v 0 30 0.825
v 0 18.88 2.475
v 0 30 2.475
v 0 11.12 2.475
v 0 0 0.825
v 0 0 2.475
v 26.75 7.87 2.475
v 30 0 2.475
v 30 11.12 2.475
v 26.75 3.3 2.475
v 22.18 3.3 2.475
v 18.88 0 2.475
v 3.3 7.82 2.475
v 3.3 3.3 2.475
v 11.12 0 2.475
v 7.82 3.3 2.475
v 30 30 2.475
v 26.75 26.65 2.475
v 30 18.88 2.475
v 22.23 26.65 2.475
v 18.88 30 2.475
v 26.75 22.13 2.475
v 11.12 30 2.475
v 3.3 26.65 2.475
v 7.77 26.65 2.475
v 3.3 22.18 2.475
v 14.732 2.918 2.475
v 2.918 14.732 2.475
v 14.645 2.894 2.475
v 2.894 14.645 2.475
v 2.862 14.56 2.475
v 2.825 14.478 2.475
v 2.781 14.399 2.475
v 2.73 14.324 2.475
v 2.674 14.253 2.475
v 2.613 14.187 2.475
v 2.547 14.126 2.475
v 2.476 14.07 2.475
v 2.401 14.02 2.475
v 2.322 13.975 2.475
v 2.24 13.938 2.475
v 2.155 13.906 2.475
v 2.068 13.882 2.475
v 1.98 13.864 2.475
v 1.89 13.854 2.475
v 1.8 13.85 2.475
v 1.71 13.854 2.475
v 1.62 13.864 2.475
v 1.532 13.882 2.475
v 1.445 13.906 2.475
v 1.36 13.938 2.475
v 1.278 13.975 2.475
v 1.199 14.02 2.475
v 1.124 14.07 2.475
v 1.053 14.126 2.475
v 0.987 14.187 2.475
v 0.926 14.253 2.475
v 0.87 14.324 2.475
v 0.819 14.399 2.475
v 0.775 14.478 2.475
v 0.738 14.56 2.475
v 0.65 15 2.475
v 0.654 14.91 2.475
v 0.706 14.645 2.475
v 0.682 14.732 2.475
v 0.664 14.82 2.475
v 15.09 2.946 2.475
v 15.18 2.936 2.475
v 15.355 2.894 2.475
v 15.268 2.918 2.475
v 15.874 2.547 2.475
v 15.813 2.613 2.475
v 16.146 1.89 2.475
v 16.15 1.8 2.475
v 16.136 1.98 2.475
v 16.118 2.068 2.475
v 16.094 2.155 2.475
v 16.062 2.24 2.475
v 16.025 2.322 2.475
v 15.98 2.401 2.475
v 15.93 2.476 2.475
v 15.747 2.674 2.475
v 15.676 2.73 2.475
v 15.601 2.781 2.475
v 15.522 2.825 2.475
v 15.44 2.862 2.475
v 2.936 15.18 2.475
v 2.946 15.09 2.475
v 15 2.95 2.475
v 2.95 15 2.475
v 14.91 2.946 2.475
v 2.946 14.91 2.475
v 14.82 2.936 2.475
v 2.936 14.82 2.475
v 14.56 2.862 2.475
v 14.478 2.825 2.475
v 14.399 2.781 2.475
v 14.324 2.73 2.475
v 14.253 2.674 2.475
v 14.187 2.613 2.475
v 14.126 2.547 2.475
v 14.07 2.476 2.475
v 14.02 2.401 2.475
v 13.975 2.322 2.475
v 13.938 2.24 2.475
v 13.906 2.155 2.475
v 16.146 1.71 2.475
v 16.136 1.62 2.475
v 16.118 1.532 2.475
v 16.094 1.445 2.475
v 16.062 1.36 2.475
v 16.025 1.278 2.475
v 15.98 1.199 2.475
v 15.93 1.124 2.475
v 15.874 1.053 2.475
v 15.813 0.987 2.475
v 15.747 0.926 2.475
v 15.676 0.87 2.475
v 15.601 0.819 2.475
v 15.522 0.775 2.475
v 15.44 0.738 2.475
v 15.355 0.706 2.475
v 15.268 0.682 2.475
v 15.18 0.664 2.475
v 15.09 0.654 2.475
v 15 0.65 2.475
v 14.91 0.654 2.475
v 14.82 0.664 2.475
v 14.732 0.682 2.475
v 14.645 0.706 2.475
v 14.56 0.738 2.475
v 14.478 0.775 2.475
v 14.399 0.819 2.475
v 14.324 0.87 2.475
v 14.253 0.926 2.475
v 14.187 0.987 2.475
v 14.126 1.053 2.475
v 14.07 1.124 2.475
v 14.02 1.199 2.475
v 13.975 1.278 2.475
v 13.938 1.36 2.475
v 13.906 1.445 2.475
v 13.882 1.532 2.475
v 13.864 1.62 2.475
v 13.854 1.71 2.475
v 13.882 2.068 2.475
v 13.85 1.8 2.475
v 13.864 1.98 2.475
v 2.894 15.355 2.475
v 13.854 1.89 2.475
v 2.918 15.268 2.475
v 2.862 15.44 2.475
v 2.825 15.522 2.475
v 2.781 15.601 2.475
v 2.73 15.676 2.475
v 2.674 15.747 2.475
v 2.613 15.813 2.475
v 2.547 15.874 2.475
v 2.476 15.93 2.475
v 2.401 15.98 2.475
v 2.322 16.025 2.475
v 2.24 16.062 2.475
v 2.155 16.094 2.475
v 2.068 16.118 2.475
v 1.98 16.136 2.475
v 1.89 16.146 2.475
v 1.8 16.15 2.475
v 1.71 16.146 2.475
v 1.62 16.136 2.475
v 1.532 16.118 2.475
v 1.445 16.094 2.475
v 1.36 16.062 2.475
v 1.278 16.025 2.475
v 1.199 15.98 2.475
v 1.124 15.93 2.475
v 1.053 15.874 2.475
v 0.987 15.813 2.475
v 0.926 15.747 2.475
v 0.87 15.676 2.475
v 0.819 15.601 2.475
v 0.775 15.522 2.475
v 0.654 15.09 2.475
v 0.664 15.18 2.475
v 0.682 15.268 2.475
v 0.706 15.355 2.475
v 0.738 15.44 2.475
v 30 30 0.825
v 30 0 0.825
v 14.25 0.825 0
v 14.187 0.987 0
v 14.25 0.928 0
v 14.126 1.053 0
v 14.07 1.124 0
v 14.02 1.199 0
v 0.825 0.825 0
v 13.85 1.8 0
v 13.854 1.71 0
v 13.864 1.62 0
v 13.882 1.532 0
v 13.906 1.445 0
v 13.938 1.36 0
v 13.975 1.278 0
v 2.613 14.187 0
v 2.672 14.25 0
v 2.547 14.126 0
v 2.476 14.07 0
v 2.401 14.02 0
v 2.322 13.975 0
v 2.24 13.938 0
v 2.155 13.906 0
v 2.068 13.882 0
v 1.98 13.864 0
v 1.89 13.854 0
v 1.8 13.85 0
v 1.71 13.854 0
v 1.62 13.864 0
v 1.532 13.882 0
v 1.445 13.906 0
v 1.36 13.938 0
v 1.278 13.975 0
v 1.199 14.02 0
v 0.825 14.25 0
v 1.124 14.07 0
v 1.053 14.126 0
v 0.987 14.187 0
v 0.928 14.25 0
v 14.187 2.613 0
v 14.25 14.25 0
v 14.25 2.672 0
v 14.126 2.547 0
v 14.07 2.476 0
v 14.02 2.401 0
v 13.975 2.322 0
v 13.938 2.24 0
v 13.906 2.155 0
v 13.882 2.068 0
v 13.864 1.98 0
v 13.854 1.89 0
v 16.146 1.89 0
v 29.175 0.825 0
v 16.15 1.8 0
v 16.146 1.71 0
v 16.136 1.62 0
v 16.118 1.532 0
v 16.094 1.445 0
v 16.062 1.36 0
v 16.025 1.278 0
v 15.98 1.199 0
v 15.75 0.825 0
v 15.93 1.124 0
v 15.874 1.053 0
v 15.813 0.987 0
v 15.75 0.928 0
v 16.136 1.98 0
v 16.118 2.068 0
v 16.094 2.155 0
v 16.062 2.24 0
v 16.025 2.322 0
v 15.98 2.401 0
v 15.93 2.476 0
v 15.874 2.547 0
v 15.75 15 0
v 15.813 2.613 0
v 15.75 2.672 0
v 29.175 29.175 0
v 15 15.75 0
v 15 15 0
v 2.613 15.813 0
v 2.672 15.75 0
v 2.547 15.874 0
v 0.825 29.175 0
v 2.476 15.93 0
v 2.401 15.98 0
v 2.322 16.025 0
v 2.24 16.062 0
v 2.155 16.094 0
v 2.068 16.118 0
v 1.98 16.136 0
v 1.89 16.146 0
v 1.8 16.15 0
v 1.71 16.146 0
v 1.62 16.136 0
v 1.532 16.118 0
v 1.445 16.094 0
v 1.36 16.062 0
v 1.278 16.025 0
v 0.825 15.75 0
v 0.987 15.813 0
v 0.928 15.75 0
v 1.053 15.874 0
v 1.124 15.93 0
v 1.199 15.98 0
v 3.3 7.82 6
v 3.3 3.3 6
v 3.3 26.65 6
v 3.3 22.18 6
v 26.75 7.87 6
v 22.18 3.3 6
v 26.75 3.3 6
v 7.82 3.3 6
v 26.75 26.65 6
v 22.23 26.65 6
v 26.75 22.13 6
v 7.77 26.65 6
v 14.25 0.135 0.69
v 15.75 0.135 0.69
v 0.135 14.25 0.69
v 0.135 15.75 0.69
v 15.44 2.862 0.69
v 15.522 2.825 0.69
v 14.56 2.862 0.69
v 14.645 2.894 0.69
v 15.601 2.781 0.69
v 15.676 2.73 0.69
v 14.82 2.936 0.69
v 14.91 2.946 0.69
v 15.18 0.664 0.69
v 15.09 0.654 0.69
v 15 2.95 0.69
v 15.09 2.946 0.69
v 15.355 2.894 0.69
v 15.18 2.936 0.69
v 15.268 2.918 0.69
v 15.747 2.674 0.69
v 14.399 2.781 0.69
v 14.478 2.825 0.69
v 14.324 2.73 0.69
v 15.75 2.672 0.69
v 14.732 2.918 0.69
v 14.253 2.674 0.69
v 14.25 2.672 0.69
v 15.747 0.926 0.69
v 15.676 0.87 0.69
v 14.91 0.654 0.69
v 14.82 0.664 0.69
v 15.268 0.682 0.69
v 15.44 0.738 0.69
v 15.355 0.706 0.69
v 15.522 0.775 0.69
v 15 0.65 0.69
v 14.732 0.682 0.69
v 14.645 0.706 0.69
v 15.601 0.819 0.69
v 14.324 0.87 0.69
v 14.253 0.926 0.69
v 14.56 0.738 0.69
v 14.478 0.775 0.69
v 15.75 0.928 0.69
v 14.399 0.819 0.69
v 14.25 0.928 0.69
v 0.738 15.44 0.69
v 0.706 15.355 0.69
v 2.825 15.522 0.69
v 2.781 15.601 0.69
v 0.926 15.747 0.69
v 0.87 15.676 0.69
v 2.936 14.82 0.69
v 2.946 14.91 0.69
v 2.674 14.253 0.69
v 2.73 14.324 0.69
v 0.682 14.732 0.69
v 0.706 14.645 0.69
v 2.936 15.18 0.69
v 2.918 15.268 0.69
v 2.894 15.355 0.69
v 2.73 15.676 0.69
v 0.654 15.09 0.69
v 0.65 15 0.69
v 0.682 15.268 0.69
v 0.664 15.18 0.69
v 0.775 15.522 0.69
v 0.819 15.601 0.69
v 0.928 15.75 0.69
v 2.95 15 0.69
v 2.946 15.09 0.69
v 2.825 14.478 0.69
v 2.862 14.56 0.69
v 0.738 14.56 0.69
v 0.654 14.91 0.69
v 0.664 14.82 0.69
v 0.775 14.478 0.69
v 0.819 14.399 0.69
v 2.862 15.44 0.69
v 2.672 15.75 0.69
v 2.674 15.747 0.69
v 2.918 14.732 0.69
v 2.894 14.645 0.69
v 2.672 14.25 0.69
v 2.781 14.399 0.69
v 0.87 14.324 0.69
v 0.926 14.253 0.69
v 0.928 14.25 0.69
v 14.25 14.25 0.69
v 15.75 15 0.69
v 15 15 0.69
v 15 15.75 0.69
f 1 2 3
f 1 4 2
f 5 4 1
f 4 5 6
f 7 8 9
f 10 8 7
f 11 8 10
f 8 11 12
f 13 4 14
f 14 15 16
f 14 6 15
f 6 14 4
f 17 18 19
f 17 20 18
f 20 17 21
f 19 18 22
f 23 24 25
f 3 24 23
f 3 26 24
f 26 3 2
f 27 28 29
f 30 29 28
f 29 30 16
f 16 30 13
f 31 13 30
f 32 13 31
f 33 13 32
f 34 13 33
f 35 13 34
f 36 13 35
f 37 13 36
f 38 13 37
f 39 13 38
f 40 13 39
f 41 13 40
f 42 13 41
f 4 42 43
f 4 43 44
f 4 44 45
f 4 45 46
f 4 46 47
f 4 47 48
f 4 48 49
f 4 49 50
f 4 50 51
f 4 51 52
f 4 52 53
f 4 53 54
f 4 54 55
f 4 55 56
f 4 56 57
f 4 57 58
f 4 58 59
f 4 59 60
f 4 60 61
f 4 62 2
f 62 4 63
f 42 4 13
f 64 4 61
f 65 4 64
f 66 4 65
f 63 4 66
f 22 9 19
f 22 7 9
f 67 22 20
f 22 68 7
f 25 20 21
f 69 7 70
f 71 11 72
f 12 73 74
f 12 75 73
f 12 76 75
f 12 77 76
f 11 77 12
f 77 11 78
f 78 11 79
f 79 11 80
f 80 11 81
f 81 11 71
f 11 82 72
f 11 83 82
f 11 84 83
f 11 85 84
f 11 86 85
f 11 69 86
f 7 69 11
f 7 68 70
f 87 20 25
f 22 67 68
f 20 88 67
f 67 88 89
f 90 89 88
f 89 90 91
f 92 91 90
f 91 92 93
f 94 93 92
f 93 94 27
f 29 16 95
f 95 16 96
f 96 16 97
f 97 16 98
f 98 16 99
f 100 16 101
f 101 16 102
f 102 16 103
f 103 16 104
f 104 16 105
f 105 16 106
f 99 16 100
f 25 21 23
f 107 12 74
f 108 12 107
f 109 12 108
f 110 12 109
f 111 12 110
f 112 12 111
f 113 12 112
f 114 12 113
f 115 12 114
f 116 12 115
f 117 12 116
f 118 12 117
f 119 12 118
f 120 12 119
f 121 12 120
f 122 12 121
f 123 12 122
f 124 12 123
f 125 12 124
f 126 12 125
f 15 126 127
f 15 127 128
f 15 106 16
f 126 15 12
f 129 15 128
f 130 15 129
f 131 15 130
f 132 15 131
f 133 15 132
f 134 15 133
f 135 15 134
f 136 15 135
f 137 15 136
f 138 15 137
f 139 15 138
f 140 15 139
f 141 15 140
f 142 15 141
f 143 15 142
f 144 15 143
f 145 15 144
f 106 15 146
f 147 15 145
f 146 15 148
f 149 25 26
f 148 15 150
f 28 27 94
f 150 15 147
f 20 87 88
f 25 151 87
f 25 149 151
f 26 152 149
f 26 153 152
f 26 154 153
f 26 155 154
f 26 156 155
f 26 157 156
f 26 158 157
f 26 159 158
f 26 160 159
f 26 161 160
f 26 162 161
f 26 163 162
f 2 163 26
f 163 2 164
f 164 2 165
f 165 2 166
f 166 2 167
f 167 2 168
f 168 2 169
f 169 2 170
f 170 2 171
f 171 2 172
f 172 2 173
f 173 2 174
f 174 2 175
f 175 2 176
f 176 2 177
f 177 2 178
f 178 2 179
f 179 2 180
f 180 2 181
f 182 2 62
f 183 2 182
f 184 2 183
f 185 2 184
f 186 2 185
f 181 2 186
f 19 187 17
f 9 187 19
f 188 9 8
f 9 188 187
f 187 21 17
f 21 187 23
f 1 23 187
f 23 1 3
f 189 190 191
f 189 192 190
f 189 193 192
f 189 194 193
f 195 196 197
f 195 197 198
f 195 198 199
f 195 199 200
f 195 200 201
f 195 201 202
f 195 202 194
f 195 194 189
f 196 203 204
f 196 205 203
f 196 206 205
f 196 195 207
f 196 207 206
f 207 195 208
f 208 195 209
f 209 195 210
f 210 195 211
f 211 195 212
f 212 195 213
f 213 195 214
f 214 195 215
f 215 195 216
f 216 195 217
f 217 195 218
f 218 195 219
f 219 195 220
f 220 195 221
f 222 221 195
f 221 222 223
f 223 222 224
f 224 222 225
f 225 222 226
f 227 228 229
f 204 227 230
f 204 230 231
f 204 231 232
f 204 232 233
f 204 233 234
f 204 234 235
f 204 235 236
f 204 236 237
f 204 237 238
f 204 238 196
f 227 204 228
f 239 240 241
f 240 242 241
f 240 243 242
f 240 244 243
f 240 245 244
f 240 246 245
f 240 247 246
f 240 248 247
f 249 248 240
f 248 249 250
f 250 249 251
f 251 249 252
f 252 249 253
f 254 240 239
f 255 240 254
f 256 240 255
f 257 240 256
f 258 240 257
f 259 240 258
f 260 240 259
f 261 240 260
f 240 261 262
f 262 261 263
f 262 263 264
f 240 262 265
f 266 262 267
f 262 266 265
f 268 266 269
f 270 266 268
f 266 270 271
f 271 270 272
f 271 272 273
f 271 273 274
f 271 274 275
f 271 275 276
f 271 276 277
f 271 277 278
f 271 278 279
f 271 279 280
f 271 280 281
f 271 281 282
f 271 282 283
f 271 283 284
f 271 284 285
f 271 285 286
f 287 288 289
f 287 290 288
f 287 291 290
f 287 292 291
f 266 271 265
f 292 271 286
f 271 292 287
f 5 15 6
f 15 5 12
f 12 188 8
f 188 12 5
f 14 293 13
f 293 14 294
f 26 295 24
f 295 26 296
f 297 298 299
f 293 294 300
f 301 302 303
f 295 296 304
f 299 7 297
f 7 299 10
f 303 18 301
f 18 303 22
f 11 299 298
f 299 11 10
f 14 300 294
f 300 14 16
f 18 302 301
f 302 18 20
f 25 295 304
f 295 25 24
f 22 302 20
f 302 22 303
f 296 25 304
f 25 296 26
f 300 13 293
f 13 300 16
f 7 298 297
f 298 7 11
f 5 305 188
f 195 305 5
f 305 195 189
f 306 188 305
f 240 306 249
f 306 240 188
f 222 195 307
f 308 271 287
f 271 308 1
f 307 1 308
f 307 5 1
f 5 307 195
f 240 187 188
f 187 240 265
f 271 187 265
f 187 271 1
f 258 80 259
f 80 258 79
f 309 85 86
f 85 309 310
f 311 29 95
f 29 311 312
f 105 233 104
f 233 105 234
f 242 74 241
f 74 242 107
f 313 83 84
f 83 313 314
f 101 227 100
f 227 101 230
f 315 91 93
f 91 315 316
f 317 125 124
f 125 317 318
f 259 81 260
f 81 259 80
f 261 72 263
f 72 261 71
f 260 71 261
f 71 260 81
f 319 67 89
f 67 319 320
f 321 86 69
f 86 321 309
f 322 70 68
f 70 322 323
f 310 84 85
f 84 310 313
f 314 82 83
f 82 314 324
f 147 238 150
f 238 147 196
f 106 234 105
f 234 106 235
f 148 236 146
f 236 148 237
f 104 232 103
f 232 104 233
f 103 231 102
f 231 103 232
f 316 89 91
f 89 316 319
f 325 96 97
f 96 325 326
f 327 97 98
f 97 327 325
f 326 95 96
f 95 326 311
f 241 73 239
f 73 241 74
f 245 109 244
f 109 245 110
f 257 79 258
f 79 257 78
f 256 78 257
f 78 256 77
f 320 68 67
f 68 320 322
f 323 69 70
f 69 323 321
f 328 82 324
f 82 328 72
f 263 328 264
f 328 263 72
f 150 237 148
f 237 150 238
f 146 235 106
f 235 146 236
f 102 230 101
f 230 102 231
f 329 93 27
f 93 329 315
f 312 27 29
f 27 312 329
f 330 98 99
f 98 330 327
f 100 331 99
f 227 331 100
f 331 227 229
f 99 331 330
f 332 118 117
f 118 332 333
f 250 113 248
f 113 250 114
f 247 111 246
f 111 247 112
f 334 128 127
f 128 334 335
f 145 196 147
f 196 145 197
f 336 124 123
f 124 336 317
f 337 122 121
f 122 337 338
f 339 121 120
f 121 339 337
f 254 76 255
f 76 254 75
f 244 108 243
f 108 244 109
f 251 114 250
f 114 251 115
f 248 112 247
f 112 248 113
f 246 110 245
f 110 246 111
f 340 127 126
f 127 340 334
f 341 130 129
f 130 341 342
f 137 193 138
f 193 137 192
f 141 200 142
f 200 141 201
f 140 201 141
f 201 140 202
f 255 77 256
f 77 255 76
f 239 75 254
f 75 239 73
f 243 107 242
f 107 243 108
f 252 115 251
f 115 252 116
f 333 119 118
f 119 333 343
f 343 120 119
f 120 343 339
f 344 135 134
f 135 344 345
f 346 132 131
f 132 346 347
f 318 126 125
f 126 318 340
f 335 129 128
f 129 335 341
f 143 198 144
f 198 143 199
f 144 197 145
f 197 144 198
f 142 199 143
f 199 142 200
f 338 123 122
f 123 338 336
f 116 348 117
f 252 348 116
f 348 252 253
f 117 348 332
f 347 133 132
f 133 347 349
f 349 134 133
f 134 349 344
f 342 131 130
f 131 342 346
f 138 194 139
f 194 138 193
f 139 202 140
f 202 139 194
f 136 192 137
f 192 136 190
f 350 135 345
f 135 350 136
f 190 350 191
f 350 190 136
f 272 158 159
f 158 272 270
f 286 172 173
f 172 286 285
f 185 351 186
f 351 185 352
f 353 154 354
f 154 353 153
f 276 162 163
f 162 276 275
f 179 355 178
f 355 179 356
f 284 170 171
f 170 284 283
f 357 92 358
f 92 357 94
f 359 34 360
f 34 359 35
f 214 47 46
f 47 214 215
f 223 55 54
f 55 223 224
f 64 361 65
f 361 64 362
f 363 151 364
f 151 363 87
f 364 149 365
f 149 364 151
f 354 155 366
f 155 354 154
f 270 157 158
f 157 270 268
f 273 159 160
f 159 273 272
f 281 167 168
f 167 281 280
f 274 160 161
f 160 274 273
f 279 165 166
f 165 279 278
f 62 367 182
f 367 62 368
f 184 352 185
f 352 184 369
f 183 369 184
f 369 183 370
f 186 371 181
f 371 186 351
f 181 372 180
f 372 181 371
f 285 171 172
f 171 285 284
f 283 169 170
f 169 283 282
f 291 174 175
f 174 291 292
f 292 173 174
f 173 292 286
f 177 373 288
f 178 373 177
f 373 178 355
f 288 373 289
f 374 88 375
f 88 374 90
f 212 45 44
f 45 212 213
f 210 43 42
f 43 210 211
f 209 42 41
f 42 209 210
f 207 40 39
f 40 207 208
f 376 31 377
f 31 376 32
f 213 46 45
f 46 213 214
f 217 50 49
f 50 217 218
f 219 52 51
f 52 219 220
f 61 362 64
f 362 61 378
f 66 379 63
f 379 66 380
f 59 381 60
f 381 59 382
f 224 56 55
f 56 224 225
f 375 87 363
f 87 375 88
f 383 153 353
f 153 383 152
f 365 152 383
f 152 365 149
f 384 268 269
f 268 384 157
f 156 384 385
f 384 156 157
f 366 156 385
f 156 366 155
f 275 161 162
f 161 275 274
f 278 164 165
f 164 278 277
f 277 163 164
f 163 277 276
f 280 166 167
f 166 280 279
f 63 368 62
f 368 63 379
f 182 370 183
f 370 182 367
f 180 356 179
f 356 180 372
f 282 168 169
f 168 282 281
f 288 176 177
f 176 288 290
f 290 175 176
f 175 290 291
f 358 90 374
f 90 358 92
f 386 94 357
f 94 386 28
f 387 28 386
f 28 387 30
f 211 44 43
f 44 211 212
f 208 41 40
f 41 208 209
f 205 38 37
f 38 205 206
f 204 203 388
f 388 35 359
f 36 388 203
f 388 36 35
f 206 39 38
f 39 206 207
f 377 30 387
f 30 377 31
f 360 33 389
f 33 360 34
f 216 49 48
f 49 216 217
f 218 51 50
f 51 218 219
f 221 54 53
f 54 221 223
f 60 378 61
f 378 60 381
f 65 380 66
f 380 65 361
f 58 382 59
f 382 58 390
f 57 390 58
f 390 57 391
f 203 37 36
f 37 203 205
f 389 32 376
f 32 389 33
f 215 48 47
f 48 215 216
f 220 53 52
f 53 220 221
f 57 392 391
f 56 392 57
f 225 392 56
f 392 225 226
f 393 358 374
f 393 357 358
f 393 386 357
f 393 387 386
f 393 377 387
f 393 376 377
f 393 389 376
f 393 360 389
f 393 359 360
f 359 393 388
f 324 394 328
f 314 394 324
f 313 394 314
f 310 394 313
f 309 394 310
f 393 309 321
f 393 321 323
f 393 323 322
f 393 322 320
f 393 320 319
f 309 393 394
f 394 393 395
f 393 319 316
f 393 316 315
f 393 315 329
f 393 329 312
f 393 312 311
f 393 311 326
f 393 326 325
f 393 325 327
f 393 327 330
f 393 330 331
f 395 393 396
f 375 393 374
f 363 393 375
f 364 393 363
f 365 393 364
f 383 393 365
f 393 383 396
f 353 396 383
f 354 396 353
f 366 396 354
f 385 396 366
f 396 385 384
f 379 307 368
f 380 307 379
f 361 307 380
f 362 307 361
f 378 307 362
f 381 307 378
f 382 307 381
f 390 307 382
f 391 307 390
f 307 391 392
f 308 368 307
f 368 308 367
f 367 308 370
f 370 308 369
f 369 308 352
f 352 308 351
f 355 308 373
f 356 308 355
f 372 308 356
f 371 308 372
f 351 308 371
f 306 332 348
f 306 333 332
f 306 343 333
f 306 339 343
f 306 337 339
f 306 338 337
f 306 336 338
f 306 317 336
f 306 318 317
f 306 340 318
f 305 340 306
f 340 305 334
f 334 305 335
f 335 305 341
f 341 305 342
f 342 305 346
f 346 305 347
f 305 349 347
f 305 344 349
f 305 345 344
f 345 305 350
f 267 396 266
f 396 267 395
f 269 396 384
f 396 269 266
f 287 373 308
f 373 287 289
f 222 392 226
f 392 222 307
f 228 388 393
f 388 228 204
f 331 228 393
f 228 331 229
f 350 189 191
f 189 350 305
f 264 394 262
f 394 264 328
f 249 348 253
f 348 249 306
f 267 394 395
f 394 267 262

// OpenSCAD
// file: settings.scad
cube_width=30;
cube_height=16;
cube_thickness=3.3;

cap_width=30;
cap_height=6;
cap_thickness=3.3;

glyph_depth=0.7;
glyph_thickness=1.5;

photo_resitor_hole_r = 3.1;
spring_contact_hole_r = 3.35;
// file: cap_1x1.scad
include <settings.scad>

module cap_1x1(width, height, thickness, holes_mask)
{
    width1=width-thickness;
    difference()
    {
        union()
        {
            cube([width, width, thickness*3/4]);
            translate([thickness,thickness,0])cube([width-2*thickness, width-2*thickness, height]);
        }
        union()
        {
            translate([width/2,width/2,0])rotate([0,0,45])translate([-width1/2,-width1/2,thickness*3/4]) cube([width1,width1,height]);
                        //corners
            translate([0,0.25*thickness,0])rotate([45,0,0]) translate([-0.5*width, -width, -0.5*height]) cube([2*width, width, 2*height]);
            translate([0.25*thickness,0,0]) rotate([0,-45,0]) translate([-width, -0.5*width, -0.5*height]) cube([width, 2*width, 2*height]);
            translate([width-0.25*thickness,0,0]) rotate([0,45,0]) translate([0, 0, -0.5*height]) cube([width, 2*width, 2*height]);
            translate([0,width-0.25*thickness,0]) rotate([-45,0,0]) translate([-0.5*width, 0, -0.5*height]) cube([2*width, width, 2*height]);
            
            if (holes_mask >= 8)
            {
                translate([width/2, thickness-1.5, -0.5]) cylinder(r=1.15, h=height*1.5, $fn=80);
            }
            if ((holes_mask%8) >= 4)
            {
                translate([width/2, width-thickness+1.5, -0.5]) cylinder(r=1.15, h=height*1.5, $fn=80);
            }
            if ((holes_mask%4)>= 2)
            {
                translate([thickness-1.5, width/2, -0.5]) cylinder(r=1.15, h=height*1.5, $fn=80);
            }
            if (holes_mask%2 >= 1)
            {
                translate([width-thickness+1.5, width/2, -0.5]) cylinder(r=1.15, h=height*1.5, $fn=80);
            }
        }
    }
}

cap_1x1(cap_width, cap_height, cap_thickness, 9);
//ring(10,1,1);
//arrow(1, 20, 3, 1);
//transistor_npn(30, 1, 1);
// main file
use <cap_1x1.scad>
include <settings.scad>

module cap_1x1_wireV(width, height, thickness)
{
    difference()
    {
        cap_1x1(width, height, thickness, 10);
        translate([0,(width-glyph_thickness)/2,-0.01]) cube([width/2, glyph_thickness, glyph_depth]);
        translate([(width-glyph_thickness)/2, 0, -0.01]) cube([glyph_thickness, width/2, glyph_depth]);
        //translate([width/2, width/2, -0.01]) cylinder(h=glyph_depth, r=1.5*glyph_thickness, $fn=120);
    }
}

cap_1x1_wireV(cap_width, cap_height, cap_thickness);
